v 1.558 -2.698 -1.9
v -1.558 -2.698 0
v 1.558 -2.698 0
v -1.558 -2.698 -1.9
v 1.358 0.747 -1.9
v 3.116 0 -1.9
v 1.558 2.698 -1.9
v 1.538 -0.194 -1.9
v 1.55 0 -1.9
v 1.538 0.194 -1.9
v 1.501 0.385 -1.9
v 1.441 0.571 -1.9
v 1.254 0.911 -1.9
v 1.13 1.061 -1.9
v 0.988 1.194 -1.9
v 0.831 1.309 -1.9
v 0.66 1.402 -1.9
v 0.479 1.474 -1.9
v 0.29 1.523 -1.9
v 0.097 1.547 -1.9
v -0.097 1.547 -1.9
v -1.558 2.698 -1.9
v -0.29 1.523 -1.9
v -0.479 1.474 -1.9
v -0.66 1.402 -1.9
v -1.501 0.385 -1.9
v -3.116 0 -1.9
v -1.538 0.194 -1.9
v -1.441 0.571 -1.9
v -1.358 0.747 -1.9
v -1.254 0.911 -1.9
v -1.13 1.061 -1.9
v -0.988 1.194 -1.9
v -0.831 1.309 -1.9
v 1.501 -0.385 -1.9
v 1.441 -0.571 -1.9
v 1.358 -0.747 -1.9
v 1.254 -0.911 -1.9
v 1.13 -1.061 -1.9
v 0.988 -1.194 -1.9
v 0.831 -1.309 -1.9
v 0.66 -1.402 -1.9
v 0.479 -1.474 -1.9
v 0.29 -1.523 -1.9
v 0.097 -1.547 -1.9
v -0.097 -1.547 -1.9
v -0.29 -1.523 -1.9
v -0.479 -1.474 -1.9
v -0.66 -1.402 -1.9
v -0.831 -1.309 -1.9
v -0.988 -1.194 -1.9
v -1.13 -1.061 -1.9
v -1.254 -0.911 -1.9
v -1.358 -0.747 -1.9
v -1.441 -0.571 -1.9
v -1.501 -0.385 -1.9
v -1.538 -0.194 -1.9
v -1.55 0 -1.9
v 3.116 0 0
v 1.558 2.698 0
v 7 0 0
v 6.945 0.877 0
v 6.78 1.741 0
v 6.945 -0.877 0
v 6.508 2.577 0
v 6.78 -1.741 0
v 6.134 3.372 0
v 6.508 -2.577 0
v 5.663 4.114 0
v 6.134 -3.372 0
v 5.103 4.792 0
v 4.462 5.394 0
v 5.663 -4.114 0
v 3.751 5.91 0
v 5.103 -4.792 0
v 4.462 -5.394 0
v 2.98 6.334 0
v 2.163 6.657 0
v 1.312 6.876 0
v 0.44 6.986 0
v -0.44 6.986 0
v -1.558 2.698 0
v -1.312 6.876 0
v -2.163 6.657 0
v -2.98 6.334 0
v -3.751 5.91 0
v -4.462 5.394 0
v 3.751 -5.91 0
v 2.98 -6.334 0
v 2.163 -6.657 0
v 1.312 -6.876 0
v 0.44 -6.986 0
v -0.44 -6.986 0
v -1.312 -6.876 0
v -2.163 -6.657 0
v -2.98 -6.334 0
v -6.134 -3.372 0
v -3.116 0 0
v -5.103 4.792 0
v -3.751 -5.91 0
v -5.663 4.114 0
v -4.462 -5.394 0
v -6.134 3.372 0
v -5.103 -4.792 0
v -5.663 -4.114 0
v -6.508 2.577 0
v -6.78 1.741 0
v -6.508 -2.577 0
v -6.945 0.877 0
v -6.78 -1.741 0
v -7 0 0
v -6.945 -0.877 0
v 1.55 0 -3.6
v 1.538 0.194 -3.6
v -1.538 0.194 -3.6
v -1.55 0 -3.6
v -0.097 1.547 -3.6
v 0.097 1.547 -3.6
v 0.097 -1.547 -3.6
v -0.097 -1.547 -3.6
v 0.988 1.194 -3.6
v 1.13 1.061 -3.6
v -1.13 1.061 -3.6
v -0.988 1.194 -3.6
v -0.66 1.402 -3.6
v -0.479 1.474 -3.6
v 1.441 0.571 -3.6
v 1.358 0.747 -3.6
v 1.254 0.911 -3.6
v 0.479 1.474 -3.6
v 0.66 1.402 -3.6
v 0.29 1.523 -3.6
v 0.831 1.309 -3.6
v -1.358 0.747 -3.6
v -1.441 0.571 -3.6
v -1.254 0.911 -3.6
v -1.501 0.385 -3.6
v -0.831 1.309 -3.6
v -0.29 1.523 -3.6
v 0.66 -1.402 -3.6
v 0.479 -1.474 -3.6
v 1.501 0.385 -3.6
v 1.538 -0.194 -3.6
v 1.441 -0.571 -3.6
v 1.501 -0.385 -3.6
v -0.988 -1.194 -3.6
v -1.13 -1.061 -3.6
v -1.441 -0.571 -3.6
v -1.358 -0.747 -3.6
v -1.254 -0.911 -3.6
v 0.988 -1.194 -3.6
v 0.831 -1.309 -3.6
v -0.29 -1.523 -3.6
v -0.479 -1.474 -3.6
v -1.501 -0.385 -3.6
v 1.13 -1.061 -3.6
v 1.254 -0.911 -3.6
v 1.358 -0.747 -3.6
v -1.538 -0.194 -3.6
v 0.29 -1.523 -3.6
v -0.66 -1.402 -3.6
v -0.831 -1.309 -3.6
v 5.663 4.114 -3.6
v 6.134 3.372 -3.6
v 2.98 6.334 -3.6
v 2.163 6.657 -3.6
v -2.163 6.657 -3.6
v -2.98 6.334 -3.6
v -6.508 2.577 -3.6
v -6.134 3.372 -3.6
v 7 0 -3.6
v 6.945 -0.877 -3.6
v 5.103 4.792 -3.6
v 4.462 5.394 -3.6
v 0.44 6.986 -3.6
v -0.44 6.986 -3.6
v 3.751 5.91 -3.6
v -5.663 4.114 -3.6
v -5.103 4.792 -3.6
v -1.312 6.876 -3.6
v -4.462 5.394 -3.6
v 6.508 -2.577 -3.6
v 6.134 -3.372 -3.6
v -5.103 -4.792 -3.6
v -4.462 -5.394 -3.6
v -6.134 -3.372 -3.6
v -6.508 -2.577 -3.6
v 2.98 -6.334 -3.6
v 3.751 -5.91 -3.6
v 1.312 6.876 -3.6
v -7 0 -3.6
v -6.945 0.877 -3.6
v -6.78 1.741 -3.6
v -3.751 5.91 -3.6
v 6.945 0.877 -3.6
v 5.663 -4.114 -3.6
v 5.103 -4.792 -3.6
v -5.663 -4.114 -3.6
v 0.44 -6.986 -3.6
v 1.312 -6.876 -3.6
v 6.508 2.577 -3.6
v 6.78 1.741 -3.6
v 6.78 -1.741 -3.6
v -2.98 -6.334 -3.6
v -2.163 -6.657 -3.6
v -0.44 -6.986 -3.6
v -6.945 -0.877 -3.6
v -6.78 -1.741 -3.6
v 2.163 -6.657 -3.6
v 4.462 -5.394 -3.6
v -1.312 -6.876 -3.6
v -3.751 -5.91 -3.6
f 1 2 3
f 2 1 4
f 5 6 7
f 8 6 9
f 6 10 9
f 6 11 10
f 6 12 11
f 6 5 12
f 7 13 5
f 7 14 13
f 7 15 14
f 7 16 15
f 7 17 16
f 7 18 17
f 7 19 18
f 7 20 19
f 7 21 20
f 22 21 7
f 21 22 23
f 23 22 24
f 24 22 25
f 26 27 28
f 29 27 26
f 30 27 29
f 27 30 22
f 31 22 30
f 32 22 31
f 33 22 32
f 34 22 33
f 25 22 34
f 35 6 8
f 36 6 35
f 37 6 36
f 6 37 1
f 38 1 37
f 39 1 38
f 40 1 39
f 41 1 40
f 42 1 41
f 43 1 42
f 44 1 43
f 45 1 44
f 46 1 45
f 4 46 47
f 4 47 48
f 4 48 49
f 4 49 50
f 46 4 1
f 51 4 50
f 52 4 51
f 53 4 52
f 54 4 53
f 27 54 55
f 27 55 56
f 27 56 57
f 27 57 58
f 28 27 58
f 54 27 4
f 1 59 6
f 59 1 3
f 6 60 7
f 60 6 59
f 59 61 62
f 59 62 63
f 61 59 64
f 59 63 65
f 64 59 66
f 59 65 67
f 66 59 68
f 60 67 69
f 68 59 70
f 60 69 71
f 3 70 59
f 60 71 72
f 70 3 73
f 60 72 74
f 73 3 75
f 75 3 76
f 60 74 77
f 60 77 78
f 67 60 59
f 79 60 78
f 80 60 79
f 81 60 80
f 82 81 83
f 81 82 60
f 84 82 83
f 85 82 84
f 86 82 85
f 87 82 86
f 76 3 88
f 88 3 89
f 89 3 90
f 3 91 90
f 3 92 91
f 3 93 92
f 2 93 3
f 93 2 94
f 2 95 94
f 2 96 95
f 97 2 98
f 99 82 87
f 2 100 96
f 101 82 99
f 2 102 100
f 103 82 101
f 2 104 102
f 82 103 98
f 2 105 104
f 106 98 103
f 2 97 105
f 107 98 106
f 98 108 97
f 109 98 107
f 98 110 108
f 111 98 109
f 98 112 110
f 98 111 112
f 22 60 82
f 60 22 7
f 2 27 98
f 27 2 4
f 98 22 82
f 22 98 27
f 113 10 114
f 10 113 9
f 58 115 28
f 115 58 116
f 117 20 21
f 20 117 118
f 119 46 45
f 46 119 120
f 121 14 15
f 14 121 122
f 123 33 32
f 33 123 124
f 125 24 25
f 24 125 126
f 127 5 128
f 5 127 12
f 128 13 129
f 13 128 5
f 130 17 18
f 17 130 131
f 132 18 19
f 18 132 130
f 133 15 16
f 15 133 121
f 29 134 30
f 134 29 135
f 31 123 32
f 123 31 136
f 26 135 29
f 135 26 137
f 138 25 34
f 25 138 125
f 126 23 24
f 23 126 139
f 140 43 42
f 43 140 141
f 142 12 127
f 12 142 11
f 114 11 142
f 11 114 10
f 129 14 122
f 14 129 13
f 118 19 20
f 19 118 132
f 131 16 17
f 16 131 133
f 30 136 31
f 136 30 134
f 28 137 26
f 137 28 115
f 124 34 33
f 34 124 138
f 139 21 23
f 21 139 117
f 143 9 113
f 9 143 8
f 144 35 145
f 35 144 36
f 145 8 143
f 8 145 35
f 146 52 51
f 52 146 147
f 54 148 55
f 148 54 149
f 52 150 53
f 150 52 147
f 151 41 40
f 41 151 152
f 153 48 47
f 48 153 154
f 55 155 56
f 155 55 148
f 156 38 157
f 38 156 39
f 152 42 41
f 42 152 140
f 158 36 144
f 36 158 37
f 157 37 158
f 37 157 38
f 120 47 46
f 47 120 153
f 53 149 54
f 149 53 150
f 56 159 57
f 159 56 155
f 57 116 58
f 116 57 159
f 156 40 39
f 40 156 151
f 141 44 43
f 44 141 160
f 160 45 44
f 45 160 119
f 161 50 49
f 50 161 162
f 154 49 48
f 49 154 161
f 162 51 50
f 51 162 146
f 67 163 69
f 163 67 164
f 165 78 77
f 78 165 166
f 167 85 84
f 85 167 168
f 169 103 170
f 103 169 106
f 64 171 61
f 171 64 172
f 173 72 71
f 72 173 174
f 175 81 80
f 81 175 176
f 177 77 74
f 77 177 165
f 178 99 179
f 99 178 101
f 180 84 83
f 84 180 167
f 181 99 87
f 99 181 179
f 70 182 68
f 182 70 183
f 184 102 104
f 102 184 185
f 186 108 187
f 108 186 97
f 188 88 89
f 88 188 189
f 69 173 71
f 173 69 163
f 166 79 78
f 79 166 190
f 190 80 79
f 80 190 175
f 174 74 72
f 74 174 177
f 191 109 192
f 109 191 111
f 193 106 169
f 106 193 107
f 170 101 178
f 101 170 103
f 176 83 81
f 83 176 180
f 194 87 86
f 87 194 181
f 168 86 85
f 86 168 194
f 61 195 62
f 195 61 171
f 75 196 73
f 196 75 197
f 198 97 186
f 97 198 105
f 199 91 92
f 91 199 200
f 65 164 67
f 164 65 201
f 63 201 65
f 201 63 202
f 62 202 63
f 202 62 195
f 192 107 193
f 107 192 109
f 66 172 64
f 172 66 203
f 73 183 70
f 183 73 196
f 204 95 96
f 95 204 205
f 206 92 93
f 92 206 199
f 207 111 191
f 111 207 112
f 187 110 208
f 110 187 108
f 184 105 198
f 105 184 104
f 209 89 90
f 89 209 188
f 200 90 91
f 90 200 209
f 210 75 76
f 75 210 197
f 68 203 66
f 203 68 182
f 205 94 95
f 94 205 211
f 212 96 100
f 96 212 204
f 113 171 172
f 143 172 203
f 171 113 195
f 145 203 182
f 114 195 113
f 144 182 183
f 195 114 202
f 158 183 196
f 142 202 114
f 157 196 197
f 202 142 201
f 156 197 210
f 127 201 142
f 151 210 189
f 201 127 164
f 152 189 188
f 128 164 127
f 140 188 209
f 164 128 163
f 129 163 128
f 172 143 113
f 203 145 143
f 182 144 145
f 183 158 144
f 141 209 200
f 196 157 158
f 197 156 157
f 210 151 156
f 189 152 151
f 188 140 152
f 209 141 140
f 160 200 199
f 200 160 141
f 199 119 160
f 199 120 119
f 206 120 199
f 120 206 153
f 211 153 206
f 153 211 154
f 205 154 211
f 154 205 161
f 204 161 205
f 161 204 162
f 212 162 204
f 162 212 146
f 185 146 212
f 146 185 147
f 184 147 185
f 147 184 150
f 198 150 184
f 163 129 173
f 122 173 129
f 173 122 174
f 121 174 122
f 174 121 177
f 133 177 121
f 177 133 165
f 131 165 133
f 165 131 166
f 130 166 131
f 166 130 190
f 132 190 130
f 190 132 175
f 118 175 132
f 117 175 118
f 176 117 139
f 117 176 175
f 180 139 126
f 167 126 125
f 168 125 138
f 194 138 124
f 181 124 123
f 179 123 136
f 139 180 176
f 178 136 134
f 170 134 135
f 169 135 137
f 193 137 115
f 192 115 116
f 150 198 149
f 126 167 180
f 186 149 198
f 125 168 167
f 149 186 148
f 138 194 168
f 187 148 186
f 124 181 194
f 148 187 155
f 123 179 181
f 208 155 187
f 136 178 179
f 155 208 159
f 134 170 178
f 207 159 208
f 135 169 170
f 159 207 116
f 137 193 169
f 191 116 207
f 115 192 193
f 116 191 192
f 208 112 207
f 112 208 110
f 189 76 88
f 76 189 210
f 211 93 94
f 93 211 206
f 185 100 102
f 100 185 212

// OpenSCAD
$fn = 50;


difference() {
	union() {
		translate(v = [0, 0, -3.6000000000]) {
			cylinder(h = 3.6000000000, r = 7.0000000000);
		}
	}
	union() {
		translate(v = [0, 0, 0]) {
			rotate(a = [0, 0, 0]) {
				difference() {
					union() {
						translate(v = [0, 0, -1.9000000000]) {
							linear_extrude(height = 1.9000000000) {
								polygon(points = [[3.1158000000, 0.0000000000], [1.5579000000, 2.6983619531], [-1.5579000000, 2.6983619531], [-3.1158000000, 0.0000000000], [-1.5579000000, -2.6983619531], [1.5579000000, -2.6983619531]]);
							}
						}
					}
					union();
				}
			}
		}
		#translate(v = [0, 0, -100.0000000000]) {
			cylinder(h = 200, r = 1.5500000000);
		}
	}
}
